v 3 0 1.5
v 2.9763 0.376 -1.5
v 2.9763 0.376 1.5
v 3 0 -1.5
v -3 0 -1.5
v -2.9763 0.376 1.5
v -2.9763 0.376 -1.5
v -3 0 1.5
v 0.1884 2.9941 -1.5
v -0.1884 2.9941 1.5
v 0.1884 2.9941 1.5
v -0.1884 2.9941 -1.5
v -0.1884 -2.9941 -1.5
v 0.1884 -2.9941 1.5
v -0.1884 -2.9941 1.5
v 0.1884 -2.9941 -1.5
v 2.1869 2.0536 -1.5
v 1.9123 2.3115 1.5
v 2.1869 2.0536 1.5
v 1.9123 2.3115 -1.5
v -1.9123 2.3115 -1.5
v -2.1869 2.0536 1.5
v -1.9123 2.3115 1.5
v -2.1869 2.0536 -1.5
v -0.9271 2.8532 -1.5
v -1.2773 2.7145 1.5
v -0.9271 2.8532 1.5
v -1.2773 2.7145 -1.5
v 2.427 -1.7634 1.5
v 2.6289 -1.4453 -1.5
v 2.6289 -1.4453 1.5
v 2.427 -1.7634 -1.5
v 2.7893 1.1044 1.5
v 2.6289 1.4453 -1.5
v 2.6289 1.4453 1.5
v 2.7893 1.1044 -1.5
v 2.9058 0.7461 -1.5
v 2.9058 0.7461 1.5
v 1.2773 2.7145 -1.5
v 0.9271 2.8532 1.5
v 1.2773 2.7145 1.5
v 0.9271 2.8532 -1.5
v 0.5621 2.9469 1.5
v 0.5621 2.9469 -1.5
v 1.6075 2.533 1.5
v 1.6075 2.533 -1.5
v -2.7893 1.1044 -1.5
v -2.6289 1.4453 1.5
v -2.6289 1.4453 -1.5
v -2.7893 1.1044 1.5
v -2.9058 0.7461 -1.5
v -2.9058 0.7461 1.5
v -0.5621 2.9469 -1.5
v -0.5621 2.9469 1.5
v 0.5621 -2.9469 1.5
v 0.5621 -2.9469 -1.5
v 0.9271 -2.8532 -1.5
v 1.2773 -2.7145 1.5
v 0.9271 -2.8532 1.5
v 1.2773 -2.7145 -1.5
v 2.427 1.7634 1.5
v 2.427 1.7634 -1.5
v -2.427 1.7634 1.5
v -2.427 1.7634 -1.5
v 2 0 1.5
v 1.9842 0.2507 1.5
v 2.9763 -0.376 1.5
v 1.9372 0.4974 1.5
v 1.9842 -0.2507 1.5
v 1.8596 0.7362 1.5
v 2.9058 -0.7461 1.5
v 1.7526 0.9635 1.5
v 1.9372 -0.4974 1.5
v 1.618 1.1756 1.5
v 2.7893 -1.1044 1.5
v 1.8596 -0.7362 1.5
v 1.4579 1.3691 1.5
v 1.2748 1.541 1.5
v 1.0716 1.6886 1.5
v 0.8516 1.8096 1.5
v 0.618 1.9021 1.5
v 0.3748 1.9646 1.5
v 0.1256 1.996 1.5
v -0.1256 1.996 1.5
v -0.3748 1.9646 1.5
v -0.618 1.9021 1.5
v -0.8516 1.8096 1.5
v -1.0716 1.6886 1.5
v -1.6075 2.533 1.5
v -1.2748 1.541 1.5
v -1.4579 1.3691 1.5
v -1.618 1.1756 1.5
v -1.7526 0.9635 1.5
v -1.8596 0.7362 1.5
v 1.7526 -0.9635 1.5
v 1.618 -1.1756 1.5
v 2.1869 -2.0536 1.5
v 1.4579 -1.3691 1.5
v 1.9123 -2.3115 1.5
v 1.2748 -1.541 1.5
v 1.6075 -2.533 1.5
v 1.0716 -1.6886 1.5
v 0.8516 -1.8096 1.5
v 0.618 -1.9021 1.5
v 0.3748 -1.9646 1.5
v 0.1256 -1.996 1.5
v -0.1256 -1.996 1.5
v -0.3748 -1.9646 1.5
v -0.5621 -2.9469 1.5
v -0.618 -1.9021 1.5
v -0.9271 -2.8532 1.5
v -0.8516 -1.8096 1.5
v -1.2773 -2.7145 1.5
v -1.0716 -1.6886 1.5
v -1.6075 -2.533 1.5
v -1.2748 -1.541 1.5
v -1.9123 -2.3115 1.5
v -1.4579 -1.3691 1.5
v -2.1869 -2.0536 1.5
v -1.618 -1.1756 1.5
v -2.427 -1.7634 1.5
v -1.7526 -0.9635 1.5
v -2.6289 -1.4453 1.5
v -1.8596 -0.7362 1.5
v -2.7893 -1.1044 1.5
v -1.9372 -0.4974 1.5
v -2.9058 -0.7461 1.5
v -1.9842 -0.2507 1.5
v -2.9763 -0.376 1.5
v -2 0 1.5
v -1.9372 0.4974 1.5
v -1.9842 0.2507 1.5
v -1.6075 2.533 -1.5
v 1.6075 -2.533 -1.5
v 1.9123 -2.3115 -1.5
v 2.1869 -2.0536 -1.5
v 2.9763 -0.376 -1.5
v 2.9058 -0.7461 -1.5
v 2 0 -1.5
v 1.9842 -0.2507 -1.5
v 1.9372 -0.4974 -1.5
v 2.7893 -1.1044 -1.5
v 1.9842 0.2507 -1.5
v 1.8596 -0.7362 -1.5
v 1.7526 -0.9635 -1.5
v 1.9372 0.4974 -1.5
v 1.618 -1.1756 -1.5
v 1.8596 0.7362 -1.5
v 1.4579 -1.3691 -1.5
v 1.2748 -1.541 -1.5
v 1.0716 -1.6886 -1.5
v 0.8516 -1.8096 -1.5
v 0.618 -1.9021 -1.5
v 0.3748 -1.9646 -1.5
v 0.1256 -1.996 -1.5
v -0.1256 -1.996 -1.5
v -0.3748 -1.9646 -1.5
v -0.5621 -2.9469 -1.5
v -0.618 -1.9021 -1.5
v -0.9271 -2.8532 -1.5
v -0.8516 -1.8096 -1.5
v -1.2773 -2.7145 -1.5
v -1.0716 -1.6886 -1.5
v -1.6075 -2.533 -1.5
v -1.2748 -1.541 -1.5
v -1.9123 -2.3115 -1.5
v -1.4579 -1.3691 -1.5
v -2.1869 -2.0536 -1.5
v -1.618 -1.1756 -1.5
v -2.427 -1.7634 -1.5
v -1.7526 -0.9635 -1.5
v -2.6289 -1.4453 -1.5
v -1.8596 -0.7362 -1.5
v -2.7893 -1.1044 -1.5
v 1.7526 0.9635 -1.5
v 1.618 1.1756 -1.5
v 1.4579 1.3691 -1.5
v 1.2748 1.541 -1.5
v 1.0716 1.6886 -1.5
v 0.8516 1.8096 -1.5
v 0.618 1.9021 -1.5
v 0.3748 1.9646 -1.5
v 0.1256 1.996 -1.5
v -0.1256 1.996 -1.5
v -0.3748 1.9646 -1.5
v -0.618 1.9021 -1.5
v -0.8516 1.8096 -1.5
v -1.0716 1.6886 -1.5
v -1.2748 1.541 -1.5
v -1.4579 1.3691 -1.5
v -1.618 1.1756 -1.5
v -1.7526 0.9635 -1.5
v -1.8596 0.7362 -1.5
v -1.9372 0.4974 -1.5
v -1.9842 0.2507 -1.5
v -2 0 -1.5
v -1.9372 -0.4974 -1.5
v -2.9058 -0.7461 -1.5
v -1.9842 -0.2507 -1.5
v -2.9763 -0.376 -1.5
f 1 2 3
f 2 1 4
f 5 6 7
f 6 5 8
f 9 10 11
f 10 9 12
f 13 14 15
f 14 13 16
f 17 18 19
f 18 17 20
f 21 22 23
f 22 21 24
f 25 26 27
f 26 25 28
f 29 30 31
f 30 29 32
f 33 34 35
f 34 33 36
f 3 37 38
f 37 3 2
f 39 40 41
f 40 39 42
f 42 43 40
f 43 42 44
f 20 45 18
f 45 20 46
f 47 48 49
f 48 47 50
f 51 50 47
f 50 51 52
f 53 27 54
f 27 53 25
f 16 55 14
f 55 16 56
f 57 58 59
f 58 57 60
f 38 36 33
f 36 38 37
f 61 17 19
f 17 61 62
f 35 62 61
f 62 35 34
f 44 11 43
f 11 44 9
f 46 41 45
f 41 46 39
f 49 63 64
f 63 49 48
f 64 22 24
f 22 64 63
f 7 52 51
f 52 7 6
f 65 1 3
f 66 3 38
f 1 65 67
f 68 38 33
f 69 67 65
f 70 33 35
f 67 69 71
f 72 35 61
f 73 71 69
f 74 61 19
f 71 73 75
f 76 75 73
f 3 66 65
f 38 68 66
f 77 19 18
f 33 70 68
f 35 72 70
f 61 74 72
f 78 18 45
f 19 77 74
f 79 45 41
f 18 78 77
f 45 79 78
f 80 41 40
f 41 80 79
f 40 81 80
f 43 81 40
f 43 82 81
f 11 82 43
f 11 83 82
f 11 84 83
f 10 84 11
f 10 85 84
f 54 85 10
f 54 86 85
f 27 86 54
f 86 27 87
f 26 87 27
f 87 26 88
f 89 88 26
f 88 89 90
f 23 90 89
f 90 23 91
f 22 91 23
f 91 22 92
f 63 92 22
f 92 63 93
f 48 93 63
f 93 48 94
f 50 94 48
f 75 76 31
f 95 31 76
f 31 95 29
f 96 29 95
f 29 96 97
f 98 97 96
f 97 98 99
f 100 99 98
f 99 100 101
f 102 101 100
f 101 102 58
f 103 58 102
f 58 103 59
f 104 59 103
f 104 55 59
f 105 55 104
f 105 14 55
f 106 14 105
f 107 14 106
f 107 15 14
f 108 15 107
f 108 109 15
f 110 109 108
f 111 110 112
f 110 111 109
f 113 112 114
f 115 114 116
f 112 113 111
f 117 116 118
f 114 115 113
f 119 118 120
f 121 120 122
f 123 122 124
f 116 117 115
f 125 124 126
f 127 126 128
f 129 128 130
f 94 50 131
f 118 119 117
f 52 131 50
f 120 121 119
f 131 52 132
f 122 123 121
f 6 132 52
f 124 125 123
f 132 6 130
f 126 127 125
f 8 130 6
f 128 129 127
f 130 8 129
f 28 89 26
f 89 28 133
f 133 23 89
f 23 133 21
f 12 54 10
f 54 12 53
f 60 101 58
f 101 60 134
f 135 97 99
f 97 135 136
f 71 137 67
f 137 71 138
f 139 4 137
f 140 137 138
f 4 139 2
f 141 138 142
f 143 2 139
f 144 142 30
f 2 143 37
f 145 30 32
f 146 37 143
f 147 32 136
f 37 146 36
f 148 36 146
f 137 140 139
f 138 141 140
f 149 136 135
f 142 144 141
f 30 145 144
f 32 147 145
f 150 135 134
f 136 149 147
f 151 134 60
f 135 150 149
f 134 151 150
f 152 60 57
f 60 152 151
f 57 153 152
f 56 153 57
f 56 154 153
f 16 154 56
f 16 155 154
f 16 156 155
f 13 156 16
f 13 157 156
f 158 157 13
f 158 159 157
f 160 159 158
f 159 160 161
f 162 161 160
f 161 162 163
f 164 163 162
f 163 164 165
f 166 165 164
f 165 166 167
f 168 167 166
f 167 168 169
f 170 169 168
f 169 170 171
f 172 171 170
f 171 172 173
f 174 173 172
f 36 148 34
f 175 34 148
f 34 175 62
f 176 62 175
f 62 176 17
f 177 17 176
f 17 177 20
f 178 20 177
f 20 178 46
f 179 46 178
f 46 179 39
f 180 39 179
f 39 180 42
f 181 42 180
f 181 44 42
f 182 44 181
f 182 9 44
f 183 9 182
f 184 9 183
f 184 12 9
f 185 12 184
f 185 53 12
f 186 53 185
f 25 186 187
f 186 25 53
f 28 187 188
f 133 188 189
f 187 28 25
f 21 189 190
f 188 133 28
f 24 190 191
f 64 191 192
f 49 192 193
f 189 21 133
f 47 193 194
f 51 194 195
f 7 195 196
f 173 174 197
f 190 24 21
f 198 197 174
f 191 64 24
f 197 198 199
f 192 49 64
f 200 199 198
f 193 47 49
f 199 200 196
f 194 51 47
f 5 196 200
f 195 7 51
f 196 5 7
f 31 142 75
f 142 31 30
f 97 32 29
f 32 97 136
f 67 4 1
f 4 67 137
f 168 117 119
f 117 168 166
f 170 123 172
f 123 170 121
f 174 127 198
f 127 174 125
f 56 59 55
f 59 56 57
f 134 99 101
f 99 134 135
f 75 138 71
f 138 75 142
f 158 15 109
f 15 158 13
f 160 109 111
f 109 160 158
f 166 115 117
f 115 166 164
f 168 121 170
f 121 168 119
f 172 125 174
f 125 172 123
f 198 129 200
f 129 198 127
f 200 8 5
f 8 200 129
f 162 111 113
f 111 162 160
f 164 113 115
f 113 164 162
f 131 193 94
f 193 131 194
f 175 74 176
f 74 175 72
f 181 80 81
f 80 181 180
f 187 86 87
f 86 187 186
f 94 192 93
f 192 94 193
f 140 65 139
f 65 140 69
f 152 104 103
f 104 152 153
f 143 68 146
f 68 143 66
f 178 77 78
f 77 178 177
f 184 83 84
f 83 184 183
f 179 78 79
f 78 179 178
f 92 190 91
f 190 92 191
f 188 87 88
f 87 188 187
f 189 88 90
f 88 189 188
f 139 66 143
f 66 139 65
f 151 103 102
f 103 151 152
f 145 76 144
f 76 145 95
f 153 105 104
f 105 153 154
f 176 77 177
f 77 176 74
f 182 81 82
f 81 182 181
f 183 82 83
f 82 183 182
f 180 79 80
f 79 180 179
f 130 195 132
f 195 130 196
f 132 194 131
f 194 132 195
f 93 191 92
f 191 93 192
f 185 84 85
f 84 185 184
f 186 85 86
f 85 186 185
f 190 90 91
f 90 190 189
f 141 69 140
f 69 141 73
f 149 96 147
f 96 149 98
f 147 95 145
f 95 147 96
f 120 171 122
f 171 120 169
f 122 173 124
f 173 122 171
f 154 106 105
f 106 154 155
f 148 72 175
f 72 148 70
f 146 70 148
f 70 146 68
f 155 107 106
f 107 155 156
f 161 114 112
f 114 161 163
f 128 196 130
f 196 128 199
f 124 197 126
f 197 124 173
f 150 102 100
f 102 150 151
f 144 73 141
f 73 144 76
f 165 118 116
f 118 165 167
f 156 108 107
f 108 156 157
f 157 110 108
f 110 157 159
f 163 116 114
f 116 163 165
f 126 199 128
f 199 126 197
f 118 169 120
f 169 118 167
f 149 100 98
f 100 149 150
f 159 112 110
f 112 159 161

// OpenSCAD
$fn = 50;


difference() {
	union() {
		translate(v = [0, 0, -1.5000000000]) {
			cylinder(h = 3, r = 3.0000000000);
		}
	}
	union() {
		translate(v = [0, 0, -100.0000000000]) {
			cylinder(h = 200, r = 2);
		}
	}
}
